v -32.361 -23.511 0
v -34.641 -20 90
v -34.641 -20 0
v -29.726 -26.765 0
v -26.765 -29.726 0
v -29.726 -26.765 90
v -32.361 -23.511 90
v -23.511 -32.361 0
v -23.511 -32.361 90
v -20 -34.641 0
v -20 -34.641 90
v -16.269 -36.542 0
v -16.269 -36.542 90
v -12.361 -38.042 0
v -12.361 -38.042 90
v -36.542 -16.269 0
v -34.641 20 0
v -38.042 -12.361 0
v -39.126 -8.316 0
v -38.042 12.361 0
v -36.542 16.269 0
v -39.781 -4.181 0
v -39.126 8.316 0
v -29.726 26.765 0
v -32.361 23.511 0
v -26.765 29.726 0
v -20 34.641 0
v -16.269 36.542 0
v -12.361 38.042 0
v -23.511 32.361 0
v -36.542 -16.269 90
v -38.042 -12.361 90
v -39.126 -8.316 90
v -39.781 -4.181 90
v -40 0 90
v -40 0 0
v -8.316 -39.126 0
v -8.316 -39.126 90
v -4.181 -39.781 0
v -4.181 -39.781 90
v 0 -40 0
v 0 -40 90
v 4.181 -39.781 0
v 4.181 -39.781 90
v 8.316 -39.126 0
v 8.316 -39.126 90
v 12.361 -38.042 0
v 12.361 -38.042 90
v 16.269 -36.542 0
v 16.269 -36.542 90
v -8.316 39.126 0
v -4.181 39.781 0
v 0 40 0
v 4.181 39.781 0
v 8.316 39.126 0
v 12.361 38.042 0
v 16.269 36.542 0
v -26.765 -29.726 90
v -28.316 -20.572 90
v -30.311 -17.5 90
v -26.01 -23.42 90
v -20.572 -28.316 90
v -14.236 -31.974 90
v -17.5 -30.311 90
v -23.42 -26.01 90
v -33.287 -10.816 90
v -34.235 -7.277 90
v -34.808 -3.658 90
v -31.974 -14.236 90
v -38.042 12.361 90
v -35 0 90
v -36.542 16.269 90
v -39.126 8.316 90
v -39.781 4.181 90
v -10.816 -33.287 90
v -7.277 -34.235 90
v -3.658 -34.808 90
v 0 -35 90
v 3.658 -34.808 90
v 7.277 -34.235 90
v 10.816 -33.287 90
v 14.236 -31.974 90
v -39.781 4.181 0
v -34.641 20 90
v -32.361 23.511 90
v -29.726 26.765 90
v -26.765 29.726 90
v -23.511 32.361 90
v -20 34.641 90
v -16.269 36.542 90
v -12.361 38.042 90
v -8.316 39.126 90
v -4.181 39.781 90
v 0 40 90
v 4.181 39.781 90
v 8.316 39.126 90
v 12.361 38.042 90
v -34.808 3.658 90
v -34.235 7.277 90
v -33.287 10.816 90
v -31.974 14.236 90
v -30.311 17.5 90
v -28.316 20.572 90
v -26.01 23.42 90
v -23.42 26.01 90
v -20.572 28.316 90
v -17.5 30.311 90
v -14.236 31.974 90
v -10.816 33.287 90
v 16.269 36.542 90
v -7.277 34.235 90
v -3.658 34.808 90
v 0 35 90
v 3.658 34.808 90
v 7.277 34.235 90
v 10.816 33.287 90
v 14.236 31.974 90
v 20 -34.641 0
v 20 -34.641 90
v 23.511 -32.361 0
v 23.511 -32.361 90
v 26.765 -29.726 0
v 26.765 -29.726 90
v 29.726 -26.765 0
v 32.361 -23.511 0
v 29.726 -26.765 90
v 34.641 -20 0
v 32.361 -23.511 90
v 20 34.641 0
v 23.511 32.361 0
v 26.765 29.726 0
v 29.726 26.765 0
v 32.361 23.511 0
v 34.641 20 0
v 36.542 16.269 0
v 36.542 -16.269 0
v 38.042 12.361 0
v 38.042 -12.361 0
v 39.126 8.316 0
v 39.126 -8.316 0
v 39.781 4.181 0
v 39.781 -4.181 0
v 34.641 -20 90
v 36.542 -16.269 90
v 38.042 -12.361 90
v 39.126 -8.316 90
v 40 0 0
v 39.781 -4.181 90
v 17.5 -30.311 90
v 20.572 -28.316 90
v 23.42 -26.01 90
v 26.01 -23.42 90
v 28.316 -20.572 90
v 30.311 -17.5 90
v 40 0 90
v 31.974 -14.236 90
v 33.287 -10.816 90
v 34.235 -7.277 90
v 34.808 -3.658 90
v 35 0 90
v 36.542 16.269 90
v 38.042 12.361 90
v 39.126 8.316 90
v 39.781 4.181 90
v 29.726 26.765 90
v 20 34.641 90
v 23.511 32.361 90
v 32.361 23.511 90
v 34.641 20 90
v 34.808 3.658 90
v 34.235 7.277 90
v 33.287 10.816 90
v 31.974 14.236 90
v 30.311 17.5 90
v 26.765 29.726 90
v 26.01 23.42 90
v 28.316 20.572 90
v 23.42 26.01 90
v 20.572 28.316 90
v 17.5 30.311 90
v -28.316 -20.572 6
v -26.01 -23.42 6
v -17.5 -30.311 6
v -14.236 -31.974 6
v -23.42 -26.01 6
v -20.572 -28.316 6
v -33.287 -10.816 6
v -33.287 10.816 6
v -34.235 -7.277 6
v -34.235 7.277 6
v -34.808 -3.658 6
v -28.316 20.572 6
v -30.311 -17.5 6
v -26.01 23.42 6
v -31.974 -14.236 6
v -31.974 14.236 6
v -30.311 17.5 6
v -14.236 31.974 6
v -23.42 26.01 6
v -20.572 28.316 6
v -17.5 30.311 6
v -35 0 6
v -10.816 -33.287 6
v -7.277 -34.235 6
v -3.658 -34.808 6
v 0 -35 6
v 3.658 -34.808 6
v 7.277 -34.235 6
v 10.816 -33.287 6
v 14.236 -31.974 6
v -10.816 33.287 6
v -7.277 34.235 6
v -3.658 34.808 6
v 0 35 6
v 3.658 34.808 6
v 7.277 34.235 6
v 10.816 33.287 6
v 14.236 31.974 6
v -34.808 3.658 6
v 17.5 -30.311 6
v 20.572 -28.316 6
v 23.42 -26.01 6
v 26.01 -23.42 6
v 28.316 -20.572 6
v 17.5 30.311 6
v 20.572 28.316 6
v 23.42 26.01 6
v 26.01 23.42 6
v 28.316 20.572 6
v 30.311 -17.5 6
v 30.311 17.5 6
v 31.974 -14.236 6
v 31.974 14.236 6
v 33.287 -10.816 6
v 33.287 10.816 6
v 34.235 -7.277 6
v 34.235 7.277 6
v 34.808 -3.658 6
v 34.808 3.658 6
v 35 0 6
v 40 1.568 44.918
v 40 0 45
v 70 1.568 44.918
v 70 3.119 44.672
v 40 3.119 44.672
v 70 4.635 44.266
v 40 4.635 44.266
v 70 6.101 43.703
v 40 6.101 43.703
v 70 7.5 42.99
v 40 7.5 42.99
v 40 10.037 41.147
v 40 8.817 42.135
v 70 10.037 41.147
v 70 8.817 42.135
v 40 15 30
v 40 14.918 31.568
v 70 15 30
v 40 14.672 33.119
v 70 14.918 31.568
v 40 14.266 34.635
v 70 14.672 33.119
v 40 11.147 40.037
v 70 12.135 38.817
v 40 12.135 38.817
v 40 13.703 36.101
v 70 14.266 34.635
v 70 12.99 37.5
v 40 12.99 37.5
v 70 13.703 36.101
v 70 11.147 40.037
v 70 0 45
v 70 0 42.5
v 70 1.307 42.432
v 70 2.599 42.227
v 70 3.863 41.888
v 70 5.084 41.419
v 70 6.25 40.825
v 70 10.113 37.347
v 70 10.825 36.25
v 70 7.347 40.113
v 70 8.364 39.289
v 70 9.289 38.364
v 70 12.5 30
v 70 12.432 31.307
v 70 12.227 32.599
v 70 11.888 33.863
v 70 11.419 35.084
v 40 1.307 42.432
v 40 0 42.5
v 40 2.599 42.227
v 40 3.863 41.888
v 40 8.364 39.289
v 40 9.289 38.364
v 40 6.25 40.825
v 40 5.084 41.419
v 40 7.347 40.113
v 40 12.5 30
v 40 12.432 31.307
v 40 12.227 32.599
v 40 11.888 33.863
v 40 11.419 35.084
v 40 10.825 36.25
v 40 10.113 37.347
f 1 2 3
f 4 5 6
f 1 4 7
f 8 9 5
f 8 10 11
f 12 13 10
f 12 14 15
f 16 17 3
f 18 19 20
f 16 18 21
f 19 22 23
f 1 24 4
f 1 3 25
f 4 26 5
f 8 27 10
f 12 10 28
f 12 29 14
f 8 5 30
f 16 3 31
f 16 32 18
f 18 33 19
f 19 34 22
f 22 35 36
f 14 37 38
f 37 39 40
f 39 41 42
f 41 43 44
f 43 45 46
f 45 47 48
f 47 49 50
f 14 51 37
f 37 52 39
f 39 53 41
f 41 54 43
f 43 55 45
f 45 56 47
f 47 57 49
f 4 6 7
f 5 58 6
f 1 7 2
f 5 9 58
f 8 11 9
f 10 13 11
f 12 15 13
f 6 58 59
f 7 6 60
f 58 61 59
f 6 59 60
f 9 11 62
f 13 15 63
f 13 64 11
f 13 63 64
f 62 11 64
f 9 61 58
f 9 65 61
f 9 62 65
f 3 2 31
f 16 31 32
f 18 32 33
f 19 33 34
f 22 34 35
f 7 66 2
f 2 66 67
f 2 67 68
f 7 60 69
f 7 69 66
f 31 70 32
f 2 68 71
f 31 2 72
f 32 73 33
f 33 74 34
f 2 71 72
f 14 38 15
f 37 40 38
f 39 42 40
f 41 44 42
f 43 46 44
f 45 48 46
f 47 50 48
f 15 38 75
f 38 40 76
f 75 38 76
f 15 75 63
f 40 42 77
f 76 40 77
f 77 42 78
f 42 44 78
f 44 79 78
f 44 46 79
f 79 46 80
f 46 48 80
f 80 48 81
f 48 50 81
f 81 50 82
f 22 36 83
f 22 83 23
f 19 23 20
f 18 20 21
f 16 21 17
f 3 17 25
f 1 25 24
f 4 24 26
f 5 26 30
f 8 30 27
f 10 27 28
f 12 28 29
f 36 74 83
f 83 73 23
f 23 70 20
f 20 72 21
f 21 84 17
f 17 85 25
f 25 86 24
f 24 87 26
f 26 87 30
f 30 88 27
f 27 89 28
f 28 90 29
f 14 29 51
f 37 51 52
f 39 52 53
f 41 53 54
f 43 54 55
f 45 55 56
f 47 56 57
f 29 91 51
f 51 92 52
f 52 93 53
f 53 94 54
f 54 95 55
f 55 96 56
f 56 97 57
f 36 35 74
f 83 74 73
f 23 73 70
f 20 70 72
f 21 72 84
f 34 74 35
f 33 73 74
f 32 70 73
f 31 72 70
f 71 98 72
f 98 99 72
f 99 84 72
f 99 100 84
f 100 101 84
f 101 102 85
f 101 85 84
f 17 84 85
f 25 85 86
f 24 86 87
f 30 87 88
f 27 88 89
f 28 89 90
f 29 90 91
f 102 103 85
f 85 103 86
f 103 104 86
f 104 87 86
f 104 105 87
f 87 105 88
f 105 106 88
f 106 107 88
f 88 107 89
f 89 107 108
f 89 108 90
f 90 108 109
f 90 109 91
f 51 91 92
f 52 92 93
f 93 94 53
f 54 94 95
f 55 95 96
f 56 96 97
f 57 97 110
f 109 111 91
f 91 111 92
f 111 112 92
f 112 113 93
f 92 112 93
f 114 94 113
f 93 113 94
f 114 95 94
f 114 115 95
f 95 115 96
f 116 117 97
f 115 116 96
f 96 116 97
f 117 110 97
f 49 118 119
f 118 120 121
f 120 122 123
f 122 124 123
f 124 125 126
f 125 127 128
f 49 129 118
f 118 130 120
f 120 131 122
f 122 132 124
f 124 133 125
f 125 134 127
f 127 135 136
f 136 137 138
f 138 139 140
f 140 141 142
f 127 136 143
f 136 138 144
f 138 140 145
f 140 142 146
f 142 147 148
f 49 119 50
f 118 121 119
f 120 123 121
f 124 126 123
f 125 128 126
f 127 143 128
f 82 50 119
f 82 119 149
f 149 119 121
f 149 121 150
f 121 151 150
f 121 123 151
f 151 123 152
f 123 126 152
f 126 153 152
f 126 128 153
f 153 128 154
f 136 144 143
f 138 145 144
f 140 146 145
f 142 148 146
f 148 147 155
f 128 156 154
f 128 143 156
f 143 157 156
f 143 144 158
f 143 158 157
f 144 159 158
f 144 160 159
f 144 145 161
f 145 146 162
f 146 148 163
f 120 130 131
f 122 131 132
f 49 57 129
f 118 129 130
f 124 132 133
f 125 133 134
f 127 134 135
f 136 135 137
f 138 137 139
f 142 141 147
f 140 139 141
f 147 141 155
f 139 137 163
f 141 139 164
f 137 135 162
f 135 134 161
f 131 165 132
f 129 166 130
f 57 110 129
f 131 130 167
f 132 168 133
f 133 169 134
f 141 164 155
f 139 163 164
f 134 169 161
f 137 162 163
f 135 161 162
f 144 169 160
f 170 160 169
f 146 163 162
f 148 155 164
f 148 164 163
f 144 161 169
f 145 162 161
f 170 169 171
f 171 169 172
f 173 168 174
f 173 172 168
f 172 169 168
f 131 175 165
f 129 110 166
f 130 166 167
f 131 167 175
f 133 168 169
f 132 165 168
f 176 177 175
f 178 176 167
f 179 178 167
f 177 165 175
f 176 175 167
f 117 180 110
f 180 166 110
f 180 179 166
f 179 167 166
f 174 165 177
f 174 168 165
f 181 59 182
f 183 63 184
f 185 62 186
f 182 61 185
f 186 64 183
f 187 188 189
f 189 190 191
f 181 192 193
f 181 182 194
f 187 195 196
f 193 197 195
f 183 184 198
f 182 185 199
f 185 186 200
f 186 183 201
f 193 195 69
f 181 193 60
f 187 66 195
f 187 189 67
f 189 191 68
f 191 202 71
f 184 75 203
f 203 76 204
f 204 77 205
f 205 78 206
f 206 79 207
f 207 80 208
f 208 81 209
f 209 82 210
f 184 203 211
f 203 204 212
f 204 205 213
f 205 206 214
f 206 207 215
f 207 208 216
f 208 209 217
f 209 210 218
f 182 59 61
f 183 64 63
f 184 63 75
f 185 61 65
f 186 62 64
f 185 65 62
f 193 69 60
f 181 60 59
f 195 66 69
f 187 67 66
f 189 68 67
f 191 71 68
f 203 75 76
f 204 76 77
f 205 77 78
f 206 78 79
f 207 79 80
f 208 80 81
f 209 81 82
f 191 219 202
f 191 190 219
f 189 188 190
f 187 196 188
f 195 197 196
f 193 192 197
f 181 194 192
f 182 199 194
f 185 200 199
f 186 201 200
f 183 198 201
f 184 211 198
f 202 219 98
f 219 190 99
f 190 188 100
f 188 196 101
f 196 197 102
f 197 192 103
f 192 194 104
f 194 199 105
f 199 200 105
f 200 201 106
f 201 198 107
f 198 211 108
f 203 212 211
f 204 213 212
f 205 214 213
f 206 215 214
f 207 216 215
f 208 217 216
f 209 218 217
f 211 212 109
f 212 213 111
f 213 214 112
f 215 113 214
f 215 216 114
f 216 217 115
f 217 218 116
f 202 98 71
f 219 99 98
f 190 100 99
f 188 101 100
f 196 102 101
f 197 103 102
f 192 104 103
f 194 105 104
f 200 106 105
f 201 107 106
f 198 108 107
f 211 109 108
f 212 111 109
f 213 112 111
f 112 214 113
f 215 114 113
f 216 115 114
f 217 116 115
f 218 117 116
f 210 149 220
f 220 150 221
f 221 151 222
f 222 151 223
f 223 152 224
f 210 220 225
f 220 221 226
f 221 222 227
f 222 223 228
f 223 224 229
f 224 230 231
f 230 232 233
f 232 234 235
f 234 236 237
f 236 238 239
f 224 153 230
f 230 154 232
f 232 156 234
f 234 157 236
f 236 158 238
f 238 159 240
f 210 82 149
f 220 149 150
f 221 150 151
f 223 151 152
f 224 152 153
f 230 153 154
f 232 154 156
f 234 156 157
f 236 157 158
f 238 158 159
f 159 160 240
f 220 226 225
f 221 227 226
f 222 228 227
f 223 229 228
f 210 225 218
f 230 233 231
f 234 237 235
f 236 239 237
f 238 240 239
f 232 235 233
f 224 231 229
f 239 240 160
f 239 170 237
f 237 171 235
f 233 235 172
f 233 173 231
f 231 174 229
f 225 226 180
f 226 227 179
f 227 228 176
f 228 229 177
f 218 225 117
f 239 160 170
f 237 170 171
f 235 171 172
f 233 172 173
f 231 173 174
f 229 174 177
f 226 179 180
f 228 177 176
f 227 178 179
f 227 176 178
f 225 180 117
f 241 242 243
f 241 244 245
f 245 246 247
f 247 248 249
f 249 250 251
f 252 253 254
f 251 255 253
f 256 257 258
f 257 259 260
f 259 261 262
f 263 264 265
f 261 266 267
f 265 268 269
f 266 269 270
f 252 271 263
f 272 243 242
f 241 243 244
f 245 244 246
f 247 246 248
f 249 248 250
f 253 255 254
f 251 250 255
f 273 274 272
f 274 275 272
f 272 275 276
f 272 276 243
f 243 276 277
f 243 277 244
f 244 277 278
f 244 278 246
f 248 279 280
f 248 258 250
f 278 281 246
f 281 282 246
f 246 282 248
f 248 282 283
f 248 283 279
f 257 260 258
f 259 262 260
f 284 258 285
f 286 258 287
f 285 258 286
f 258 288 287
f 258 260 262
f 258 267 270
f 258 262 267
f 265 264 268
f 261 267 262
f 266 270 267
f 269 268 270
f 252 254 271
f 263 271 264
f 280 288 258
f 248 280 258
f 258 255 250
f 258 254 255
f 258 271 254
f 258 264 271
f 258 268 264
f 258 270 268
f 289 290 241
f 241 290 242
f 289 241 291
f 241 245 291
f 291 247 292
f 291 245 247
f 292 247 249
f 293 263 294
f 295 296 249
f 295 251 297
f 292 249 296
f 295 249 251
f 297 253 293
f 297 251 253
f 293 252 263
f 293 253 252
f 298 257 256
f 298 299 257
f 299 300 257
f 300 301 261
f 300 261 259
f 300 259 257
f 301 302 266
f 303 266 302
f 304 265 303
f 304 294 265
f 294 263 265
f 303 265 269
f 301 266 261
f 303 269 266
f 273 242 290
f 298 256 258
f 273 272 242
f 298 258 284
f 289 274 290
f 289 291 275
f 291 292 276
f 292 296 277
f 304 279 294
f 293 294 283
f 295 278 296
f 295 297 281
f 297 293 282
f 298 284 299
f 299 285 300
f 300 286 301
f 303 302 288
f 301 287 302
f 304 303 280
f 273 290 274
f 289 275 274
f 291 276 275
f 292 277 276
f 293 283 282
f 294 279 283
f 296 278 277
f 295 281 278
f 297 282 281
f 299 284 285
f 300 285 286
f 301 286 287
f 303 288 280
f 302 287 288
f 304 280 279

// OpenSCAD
$fn = 60;

// Core mug dimensions
height = 90;
bottom_thickness = 6;
outer_r = 40;      // outer diameter 80 -> radius 40
inner_r = 35;      // inner diameter 70 -> radius 35

// Handle dimensions (designed to be a D-shape cross-section with inner hollow 30x25)
HANDLE_LENGTH = 60;  // extent of handle along +X from mug surface
R_OUT_HANDLE = 15;   // outer handle radius (gives 2*R_OUT_HANDLE = 30 height)
R_IN_HANDLE  = 12.5; // inner handle radius (outer radius - wall_thickness), gives inner space width 25

// Mug body: hollow cylinder (outer shell + bottom 6 mm, open top)
module mug_body() {
  difference() {
    // outer shell
    cylinder(h = height, r = outer_r, center = false);
    // hollow interior starting 6 mm above bottom
    translate([0, 0, bottom_thickness])
      cylinder(h = height - bottom_thickness, r = inner_r, center = false);
  }
}

// Helper: create a half-cylinder along X (to form a "D"-shaped cross-section when clipped and extruded)
// This produces a half-cylinder by intersecting a full cylinder with a bounding box to keep only Y >= 0 portion.
// The result has its left face at x = 0 and extends to x = HANDLE_LENGTH (in local coordinates).
module half_cylinder(h, r) {
  intersection() {
    // cylinder oriented along X by rotating a Z-oriented cylinder
    rotate([0, 90, 0])
      cylinder(h = h, r = r, center = true);
    // clip to keep only the half with Y >= 0
    // cube extends in X from 0 to h, Y from 0 to 2r, Z from 0 to 2r
    cube([h, 2*r, 2*r], center = false);
  }
}

// Handle: attach to +X side of mug (left face of handle sits at x = 40)
// Center handle vertically at mug mid-height (z = 45)
module handle() {
  dx = 40;                // left boundary aligns with mug outer surface (radius 40)
  dz = 45 - R_OUT_HANDLE; // align vertical center to z = 45
  translate([dx, 0, dz])
    difference() {
      // outer D-shaped shell (half-cylinder)
      half_cylinder(HANDLE_LENGTH, R_OUT_HANDLE);
      // inner hollow (slightly smaller half-cylinder)
      half_cylinder(HANDLE_LENGTH, R_IN_HANDLE);
    }
}

// Assemble
union() {
  mug_body();
  handle();
}
